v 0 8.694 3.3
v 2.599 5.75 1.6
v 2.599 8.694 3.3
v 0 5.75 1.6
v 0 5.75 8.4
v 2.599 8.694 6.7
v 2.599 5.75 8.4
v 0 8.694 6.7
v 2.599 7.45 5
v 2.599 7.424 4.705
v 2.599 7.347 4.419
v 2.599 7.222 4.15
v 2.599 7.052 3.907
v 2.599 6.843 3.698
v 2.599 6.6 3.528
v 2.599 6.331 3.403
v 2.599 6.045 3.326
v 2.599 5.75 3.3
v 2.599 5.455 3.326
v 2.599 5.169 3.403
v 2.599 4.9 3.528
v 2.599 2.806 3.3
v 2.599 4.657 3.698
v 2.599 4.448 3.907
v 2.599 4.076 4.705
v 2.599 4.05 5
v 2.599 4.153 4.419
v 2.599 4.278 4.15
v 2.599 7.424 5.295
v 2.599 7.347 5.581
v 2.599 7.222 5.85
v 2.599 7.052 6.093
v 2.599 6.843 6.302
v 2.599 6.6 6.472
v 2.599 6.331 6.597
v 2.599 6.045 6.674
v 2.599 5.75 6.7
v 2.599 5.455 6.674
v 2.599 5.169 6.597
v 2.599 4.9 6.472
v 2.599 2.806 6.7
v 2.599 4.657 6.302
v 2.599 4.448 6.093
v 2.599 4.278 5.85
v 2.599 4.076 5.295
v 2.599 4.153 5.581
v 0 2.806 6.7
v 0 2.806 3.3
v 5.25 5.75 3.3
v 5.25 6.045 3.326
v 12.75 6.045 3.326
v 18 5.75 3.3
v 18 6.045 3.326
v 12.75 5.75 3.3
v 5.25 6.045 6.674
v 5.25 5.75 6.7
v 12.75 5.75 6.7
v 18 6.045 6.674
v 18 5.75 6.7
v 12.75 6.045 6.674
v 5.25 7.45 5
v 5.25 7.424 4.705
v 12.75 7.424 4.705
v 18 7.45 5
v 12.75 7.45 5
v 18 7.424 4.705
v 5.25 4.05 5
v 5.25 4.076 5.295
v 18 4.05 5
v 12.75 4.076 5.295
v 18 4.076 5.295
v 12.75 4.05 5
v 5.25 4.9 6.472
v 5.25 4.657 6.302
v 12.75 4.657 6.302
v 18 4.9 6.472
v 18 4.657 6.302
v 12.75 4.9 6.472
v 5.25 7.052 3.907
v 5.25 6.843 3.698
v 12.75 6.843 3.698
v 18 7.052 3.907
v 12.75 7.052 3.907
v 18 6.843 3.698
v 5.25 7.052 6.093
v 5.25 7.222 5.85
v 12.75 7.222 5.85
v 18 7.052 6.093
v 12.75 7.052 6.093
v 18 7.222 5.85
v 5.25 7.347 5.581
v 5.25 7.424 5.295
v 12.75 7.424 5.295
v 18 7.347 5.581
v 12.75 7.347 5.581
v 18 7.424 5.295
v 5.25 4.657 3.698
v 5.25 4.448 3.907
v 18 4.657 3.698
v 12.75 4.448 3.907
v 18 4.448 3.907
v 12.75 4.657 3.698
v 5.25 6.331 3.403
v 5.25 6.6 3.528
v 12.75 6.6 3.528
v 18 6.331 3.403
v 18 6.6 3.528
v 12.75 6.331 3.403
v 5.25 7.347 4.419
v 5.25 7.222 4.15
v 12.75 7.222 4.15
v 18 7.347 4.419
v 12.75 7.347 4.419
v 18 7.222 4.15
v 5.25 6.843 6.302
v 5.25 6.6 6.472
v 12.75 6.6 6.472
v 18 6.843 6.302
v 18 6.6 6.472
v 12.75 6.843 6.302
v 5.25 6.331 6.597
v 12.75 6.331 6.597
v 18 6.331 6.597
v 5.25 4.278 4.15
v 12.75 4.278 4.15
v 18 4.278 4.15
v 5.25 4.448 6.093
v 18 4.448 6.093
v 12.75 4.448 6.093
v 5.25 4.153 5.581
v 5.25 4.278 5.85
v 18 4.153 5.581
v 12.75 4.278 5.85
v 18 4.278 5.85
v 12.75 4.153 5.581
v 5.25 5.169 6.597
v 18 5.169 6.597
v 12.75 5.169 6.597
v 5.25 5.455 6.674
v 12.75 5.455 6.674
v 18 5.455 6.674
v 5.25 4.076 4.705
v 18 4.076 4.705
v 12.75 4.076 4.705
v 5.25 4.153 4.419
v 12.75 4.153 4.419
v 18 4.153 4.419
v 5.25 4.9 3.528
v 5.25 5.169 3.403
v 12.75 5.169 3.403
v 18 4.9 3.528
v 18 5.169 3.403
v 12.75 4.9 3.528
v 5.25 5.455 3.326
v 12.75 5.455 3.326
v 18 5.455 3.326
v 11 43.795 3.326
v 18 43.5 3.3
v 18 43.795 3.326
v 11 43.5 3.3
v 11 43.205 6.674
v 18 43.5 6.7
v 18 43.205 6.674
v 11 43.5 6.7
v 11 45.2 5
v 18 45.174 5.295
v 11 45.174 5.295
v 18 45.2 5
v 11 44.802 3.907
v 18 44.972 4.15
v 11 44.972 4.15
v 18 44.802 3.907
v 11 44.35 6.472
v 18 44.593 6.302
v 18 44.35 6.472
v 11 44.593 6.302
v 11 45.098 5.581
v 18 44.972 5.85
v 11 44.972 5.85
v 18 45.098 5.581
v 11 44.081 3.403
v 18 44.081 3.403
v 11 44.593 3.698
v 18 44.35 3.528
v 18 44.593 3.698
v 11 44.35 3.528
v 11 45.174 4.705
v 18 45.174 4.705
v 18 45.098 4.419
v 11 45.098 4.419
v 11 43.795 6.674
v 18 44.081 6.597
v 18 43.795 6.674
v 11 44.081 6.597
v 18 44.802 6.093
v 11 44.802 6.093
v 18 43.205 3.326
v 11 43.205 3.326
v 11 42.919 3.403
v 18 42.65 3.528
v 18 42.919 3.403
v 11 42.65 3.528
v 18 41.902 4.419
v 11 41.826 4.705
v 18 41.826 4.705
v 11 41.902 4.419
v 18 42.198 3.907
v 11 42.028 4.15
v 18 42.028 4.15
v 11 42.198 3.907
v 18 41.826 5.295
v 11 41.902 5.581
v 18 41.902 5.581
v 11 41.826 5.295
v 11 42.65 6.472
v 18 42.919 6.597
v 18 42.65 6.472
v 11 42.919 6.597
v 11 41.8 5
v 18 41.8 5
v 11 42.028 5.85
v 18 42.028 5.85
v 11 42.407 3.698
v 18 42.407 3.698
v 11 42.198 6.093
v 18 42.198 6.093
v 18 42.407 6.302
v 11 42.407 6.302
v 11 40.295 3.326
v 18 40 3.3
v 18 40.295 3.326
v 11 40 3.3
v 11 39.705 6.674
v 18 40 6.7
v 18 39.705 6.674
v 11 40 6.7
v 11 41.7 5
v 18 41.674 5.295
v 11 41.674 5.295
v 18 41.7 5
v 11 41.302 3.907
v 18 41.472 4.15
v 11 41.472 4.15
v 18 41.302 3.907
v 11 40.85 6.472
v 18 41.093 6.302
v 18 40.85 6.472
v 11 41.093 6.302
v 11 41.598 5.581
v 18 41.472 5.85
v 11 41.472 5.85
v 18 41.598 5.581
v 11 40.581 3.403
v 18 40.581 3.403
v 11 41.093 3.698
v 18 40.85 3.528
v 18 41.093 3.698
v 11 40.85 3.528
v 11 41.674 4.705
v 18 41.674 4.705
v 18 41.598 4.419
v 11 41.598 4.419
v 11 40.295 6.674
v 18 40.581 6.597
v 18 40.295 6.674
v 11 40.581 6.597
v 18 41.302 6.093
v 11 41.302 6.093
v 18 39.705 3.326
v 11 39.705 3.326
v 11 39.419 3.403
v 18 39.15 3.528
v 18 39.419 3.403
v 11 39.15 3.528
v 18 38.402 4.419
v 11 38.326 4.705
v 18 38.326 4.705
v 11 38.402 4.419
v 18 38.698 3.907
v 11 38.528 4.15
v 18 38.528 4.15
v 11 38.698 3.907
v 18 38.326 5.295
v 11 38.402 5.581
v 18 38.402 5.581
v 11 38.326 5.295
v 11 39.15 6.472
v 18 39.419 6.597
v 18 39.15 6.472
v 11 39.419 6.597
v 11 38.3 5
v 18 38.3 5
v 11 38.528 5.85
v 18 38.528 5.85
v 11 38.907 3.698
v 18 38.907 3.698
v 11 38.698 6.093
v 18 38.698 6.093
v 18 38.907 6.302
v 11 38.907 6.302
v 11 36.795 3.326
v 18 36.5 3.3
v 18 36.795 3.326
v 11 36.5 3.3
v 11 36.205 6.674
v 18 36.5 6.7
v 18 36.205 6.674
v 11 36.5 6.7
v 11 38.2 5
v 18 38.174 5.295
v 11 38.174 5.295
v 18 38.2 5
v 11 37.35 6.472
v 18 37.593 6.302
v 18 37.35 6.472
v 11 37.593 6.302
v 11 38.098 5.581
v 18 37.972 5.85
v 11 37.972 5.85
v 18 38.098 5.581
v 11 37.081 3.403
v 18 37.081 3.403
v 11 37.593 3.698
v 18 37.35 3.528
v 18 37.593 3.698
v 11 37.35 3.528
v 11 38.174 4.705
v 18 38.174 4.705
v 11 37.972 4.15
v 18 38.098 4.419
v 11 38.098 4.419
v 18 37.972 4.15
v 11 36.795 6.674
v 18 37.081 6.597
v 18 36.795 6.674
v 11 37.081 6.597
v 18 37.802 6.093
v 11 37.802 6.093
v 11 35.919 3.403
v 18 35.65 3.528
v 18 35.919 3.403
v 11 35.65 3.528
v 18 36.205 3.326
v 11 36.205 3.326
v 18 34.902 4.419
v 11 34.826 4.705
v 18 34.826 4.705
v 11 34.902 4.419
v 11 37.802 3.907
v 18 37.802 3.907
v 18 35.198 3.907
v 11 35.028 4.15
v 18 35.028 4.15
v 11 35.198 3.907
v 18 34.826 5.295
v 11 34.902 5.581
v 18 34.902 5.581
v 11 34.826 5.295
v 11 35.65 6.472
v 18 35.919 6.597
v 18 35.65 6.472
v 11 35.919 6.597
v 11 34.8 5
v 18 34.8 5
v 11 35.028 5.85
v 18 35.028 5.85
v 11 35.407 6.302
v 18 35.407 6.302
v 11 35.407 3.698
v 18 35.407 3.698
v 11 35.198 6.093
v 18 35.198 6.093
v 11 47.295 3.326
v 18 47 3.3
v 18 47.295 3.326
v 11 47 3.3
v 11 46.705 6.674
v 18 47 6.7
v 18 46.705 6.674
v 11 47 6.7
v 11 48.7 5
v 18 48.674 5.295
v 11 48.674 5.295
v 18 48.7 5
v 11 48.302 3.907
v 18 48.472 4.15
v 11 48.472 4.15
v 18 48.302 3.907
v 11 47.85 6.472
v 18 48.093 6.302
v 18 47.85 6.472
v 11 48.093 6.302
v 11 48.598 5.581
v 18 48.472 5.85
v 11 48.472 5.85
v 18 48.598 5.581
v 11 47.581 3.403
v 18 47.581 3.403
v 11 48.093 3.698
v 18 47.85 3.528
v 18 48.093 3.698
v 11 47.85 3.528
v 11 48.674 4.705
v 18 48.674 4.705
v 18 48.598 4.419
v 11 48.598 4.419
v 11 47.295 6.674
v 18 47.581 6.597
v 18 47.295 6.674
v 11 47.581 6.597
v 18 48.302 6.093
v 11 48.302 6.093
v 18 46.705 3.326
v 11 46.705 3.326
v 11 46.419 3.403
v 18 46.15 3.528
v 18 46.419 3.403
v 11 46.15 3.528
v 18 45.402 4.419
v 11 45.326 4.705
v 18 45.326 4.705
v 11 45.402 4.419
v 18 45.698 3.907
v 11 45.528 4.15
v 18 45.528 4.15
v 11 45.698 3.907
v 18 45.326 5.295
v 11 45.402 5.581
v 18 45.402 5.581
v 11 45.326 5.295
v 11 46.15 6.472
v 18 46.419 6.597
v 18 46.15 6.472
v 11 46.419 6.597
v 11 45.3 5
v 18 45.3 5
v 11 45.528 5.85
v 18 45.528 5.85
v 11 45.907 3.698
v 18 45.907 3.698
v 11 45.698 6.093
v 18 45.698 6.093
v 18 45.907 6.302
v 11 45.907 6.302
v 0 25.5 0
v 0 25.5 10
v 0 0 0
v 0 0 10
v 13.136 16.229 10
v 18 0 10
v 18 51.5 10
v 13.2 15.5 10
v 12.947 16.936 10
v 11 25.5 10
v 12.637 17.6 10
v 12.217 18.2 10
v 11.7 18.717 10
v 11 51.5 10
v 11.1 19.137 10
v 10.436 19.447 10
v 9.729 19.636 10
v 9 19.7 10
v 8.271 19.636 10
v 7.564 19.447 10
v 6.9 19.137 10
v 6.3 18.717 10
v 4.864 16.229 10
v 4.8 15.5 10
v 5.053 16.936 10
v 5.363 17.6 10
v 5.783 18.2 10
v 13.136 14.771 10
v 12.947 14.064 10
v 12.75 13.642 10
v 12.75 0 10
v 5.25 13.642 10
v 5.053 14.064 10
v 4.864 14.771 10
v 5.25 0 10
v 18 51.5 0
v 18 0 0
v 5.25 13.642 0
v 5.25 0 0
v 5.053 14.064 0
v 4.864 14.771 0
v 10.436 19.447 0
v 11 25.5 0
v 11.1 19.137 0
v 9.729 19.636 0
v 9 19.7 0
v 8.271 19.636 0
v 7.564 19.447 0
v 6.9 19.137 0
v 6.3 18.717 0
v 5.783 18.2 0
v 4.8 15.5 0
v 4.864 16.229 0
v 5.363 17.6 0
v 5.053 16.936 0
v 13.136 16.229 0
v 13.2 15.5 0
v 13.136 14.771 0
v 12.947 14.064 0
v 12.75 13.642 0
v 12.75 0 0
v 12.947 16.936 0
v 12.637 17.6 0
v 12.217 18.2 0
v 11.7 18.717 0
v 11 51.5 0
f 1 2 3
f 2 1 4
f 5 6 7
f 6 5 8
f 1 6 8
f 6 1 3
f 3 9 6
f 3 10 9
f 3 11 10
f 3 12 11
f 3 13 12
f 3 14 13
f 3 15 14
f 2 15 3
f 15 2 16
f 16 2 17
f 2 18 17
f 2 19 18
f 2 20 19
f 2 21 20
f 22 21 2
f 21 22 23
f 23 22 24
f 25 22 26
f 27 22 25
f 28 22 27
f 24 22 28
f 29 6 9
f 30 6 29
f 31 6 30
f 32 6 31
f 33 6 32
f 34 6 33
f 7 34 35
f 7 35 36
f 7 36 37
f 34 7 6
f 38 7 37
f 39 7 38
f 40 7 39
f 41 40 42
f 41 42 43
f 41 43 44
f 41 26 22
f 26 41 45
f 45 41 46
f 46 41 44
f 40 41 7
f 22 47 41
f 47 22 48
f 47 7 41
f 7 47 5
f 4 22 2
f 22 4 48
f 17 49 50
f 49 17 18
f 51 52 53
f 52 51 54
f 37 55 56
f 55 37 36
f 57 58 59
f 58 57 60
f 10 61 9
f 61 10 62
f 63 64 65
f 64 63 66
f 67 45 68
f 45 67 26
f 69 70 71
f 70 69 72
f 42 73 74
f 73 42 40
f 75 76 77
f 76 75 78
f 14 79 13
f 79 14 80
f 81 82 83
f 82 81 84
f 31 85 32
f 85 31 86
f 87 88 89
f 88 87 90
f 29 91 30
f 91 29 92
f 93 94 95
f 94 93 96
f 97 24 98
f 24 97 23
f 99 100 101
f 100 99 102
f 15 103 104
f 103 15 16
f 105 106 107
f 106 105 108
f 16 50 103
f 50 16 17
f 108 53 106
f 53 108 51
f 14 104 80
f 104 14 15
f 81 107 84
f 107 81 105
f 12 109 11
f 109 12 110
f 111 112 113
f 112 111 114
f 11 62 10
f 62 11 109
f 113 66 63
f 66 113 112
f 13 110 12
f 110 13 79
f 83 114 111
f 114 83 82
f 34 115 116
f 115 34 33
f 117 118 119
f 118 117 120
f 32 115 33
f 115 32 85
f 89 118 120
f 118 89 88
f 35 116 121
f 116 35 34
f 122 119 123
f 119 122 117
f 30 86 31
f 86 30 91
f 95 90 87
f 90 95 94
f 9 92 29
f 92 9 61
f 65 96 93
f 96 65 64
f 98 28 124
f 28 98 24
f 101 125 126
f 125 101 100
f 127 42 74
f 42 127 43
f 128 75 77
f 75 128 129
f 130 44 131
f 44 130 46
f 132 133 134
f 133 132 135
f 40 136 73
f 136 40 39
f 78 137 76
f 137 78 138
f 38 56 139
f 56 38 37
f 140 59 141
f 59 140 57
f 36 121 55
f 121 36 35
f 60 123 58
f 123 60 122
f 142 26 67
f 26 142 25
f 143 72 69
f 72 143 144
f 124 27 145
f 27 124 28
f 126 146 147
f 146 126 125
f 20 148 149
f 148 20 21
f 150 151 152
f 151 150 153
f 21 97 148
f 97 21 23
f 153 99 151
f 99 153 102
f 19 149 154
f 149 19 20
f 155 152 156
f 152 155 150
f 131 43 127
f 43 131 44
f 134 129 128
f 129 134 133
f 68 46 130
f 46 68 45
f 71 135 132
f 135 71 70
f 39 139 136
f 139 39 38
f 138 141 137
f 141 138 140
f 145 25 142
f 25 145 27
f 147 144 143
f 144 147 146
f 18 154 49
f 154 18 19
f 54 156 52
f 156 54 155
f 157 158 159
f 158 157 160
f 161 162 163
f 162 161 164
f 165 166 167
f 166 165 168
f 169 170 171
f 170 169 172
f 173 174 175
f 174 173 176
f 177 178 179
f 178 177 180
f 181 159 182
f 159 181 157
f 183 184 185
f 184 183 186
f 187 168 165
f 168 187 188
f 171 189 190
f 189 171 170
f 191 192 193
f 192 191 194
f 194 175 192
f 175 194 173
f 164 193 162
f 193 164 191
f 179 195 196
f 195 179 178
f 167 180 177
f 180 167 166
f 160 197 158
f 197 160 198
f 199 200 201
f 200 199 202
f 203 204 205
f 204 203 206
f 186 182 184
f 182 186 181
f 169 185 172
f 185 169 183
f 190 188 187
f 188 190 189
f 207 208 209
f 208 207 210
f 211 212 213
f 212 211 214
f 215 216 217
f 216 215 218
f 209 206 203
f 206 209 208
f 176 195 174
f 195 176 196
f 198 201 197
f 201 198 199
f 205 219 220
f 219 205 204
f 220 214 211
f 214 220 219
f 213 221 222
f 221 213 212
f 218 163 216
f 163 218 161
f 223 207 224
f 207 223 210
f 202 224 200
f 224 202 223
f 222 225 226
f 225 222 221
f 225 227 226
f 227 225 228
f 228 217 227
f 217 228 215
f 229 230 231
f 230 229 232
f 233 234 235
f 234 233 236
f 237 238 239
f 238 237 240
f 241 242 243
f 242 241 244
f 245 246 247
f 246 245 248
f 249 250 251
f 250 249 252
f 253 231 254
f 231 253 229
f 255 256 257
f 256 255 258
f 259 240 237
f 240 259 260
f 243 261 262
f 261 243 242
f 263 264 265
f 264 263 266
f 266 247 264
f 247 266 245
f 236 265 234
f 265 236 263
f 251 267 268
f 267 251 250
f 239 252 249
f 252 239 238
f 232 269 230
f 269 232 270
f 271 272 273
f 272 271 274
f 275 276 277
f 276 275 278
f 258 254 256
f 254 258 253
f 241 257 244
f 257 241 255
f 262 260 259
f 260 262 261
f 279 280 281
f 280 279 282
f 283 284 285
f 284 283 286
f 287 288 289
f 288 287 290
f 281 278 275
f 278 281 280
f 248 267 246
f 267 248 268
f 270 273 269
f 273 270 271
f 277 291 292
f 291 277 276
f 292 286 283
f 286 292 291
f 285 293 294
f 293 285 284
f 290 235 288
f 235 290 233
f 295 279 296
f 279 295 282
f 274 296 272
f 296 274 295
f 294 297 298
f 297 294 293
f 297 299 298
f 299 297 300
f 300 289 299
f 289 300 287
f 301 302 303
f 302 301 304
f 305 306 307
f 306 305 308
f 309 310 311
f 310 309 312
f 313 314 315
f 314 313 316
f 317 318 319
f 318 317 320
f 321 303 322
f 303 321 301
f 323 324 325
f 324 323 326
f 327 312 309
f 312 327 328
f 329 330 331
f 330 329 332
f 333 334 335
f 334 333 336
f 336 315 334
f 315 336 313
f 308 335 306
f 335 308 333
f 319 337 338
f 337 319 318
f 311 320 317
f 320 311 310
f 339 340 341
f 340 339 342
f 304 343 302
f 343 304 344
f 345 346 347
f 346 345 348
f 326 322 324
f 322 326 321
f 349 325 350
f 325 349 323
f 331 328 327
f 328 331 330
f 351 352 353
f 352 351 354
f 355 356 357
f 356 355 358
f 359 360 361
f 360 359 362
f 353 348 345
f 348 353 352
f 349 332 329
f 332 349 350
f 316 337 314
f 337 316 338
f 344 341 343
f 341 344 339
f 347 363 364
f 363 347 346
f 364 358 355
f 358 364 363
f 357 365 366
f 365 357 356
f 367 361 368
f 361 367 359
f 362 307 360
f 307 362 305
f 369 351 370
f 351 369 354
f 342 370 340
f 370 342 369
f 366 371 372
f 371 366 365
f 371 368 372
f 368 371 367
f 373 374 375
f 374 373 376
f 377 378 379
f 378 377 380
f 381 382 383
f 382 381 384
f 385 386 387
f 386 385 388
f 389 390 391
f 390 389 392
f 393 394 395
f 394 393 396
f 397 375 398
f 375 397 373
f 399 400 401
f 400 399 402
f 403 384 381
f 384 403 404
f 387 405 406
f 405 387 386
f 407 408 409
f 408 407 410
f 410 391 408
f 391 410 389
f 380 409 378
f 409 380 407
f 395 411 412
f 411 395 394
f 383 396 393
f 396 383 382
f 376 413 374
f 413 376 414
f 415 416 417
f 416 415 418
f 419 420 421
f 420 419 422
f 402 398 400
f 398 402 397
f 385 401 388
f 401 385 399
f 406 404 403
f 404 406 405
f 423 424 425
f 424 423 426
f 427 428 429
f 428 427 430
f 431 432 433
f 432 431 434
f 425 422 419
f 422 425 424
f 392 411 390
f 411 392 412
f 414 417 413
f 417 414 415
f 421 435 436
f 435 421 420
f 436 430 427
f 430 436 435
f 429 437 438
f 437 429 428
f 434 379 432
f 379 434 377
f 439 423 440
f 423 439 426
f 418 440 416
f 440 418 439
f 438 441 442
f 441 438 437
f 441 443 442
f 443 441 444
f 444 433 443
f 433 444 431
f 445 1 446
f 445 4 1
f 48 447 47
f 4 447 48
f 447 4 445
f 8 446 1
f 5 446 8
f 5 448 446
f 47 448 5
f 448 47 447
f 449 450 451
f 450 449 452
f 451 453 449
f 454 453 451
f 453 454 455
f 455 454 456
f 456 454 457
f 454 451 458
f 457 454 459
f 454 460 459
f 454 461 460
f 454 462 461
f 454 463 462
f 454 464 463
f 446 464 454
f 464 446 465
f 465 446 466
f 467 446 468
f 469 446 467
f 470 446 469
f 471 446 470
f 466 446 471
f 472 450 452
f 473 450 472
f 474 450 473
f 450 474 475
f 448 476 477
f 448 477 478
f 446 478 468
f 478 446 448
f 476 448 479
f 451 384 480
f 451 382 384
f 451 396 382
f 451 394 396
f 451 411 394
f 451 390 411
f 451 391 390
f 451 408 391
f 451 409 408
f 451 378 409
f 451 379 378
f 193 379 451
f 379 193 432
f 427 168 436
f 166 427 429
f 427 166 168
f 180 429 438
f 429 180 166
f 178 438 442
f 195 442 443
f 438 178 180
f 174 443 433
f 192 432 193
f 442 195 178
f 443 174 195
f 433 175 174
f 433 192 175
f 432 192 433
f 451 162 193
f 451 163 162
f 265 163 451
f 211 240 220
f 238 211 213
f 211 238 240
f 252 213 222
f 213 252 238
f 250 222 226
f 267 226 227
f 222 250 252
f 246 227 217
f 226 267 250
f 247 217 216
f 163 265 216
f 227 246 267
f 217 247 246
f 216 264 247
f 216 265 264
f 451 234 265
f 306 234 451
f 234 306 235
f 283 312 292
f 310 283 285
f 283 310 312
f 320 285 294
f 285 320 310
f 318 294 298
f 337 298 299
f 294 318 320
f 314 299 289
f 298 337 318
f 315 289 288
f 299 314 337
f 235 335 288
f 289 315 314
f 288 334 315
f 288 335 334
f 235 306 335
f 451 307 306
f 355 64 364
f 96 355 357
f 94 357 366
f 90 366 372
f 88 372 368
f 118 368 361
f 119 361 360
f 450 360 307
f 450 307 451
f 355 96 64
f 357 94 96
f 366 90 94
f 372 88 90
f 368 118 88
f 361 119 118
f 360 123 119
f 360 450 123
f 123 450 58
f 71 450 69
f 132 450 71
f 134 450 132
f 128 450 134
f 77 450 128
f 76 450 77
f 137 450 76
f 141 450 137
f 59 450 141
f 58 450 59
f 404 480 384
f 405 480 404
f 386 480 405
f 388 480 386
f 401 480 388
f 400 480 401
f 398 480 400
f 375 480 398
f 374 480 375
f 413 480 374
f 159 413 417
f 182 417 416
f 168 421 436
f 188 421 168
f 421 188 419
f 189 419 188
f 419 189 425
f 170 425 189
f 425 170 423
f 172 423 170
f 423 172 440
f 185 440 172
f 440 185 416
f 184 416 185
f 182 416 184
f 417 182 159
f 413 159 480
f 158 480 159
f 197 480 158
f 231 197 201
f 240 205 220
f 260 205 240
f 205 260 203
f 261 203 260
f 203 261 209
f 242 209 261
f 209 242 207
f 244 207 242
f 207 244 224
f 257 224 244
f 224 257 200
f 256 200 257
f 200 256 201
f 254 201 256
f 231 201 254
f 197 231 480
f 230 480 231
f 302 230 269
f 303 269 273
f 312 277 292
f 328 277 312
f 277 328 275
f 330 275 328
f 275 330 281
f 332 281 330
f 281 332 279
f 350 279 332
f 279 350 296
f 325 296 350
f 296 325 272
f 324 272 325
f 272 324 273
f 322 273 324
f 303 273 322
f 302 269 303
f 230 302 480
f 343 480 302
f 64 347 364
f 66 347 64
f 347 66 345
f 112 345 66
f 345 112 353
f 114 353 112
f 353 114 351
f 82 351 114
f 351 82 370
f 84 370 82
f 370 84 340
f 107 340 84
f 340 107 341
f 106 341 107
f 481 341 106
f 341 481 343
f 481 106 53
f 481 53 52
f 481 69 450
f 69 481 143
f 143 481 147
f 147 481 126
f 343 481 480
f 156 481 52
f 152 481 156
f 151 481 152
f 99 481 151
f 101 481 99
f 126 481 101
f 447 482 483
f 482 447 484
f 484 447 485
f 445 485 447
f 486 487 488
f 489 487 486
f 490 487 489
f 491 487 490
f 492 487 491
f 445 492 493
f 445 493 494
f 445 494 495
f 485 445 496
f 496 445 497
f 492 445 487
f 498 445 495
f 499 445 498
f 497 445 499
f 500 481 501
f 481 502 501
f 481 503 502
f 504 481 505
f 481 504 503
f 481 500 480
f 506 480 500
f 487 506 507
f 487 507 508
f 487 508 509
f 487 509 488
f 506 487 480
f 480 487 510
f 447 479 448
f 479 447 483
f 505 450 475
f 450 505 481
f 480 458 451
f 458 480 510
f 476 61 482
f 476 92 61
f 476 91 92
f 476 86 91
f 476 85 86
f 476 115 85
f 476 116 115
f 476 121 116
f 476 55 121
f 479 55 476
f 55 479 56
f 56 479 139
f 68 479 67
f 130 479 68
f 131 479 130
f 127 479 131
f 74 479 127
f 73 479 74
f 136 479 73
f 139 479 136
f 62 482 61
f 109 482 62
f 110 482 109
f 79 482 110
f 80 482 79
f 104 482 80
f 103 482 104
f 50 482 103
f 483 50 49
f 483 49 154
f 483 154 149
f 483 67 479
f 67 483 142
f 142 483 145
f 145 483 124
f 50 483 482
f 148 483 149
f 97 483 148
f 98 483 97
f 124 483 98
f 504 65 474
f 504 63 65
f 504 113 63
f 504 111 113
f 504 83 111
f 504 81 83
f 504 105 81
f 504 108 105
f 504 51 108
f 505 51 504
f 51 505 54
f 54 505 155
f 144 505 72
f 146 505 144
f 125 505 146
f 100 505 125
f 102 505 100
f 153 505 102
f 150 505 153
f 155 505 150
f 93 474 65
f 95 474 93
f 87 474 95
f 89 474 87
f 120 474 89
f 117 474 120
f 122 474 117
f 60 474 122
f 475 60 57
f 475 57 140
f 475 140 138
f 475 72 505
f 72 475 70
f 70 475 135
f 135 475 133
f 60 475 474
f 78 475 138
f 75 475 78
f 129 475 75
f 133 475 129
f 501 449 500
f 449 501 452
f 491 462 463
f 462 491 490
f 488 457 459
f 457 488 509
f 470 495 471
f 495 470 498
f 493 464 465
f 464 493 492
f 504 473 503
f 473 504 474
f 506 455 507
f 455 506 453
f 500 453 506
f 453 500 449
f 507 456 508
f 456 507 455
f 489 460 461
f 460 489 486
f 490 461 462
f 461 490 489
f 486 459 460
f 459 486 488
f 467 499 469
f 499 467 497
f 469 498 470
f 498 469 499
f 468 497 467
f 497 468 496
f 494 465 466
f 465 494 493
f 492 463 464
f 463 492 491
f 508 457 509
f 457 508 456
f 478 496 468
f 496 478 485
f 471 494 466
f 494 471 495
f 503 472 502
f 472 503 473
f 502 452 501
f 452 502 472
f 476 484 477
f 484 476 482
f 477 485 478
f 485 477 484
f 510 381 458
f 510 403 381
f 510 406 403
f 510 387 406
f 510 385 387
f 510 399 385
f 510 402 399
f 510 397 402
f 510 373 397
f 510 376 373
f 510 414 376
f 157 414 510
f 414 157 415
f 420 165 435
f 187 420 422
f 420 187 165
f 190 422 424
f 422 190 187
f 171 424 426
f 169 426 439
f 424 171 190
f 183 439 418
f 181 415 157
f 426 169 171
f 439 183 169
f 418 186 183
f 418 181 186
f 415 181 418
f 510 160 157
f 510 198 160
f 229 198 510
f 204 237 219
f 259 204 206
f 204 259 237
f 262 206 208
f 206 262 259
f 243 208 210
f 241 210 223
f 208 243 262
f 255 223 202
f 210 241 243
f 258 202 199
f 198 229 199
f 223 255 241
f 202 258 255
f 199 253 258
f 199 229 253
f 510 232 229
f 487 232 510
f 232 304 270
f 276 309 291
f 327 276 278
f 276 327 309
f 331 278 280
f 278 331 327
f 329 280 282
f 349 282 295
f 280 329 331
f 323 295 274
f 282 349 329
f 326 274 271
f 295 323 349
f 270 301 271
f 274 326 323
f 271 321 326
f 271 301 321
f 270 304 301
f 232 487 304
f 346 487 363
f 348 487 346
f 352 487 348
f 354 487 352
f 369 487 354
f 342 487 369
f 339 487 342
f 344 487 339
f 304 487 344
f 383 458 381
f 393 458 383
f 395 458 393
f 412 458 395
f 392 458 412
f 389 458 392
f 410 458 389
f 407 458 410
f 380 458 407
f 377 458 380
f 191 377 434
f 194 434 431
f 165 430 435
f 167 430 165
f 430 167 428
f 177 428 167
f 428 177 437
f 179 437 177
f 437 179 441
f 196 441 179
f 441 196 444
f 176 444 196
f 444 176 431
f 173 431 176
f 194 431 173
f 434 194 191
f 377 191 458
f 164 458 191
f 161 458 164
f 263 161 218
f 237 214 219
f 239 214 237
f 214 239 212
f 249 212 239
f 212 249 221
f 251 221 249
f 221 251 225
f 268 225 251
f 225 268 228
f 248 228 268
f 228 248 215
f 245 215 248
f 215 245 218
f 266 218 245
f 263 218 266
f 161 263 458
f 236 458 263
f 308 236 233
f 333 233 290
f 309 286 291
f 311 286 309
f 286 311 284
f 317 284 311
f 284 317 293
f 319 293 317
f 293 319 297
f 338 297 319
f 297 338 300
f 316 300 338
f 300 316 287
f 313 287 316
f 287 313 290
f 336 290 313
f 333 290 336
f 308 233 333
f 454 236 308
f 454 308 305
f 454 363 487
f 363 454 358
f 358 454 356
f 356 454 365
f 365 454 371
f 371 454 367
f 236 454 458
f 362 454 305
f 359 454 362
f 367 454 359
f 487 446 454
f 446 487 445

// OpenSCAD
include<MCAD/nuts_and_bolts.scad>

rod=8;
nutlen=2.4;
tol=.2;

w=rod+2*5;
rodpos=rod/2+5.5+6;
l=28+8+rodpos;
hght=10;

difference() {
    cube([w,l,hght]);
    translate([(w-rod+.5)/2,-1,-1]) cube([rod-.5,rodpos,hght+2]);
    translate([w/2,rodpos,-1]) cylinder(h=hght+2,r=(rod/2)+tol,$fn=36);
    translate([-.001,2.75+3,hght/2]) rotate(90,[0,1,0]) {
        nutHole(size=3,tolerance=0.2);
        translate([0,0,-1]) cylinder(h=w+2,r=1.5+tol,$fn=36);
    }
    translate([-1,rodpos+rod/2+6,-1]) cube([w/2+2+1,l-rodpos-rod/2-6+1,hght+2]);
    for (y=[28,28-3.5,28-7,28+3.5]) {
    translate([-.001,rodpos+y,hght/2]) rotate(90,[0,1,0]) {
        //nutHole(size=3,tolerance=0.2);
        cylinder(h=w+2,r=1.5+tol,$fn=36);
    }
}
}
